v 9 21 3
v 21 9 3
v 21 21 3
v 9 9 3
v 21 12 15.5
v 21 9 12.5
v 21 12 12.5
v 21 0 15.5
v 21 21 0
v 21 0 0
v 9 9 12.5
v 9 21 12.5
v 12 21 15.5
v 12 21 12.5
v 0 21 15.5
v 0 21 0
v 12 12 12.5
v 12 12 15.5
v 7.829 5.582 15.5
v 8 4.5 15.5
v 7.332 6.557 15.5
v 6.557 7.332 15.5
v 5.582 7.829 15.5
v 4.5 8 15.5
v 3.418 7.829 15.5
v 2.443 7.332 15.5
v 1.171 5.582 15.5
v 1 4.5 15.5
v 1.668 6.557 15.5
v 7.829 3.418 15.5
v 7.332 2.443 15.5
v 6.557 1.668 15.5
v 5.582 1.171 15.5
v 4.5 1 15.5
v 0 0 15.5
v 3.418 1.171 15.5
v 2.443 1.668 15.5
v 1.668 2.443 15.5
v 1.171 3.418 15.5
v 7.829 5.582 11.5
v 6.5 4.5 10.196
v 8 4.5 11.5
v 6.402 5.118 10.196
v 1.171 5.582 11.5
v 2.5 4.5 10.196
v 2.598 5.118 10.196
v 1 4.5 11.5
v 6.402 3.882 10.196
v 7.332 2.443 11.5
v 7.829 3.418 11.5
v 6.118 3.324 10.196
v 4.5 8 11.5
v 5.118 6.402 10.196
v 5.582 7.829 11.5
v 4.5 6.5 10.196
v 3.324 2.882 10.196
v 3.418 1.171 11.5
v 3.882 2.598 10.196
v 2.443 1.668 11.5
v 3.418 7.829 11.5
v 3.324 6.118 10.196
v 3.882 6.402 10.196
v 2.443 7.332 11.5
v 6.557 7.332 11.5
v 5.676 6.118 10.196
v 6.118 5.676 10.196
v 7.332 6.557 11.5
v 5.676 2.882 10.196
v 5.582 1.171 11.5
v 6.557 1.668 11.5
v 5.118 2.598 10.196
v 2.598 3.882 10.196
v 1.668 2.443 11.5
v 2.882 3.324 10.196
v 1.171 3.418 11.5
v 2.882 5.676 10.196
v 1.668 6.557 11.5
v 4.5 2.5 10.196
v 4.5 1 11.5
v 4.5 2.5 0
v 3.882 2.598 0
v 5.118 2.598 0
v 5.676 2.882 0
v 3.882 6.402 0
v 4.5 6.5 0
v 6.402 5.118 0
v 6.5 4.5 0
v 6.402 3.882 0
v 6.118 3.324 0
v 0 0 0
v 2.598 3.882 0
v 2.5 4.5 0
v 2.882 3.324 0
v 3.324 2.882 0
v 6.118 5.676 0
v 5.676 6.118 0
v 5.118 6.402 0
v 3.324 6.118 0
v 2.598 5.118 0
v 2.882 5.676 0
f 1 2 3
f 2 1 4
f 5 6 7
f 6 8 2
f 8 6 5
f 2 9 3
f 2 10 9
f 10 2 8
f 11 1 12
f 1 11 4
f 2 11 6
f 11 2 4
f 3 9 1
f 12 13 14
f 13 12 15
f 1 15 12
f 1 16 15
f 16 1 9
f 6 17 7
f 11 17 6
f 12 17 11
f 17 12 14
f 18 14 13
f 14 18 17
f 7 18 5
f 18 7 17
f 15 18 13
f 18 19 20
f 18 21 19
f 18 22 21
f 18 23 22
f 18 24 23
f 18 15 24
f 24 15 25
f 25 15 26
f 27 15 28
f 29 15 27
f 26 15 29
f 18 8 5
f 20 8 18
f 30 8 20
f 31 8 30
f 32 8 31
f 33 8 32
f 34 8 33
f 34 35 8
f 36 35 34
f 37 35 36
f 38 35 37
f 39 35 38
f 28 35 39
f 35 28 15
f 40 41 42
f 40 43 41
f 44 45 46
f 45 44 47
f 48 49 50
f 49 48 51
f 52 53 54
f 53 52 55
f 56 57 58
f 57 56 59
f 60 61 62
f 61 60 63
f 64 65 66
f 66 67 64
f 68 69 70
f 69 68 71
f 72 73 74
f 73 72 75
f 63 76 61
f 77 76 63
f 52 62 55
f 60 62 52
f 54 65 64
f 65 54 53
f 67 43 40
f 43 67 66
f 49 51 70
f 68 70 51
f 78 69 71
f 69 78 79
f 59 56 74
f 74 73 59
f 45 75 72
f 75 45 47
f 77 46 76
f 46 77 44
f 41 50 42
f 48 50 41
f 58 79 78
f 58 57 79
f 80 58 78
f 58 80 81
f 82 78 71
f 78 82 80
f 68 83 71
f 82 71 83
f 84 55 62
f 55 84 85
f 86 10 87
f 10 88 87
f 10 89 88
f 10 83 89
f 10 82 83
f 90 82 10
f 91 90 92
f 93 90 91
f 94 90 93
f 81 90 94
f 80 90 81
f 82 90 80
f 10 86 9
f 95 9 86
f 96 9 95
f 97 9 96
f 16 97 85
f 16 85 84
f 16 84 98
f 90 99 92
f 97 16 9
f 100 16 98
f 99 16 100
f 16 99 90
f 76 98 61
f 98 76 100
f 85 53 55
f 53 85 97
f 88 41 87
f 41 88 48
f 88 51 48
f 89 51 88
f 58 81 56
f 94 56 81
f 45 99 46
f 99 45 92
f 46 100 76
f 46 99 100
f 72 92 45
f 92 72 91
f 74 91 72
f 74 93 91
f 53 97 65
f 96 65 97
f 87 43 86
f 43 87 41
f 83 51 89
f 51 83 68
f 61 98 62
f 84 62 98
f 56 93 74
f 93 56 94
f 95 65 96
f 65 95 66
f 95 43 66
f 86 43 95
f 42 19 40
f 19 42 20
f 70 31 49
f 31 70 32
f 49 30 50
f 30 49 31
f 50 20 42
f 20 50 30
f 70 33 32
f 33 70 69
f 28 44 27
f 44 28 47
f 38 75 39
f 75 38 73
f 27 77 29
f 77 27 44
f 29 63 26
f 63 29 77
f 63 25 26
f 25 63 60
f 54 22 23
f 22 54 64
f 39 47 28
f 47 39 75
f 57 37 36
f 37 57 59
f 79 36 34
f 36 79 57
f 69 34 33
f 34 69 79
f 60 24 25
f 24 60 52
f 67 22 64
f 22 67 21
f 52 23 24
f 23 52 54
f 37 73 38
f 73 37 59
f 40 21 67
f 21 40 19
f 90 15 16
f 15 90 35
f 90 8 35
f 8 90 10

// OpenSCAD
// file: ../lib/utils.scad
module cone(r, angle, invert=false) {
    h = tan(angle / 2) * r;
    translate([0, 0, -h]) {
        if (invert) {
                cylinder(r1=r,r2=0,h=h, $fn=20); 
        } else {
            cylinder(r1=0,r2=r,h=h, $fn=20); 
        }
    }
}

module roundrect(vect, r, $fn=20) {
    sq = len(vect) > 1 ? [for (i = [0:1:len(vect)-1]) vect[i] - r * 2] : vect - r * 2;
    minkowski() {
        square(sq);
        translate([r, r])
            circle(r=r);
    }
}
// main file
// Corner Bracket
// by Nathan Wittstock <nate@fardog.io>

// preview[view: south east, tilt: top diagonal]

use <../lib/utils.scad>;

/* [Object] */
object_depth_mm = 9.5;
object_front_overlap_mm = 3;
object_rear_overlap_mm = 12;

/* [Screw] */
screw_d_mm = 4;
screw_inset_head = true;
screw_additional_inset = 4;
screw_head_angle = 82;
screw_head_mm = 7;

/* [Bracket] */
thickness_mm = 3;
screw_offset_r_mm = 1;

/* [Hidden] */
total_depth = object_depth_mm + thickness_mm * 2;
total_side = screw_head_mm + screw_offset_r_mm * 2 + object_rear_overlap_mm;
object_offset = total_side - object_rear_overlap_mm;
front_offset = object_offset + object_front_overlap_mm;
front_size = total_side - front_offset;
screw_center = screw_head_mm / 2 + screw_offset_r_mm;
screw_top = total_depth - screw_additional_inset;

echo(total_depth);

difference() {
    // body
    linear_extrude(total_depth)
        square([total_side, total_side]);
    // object cutout
    translate([object_offset, object_offset, thickness_mm])
        union() {
            // main cutout
            linear_extrude(object_depth_mm)
                square([object_rear_overlap_mm, object_rear_overlap_mm]);
            // front cutout
            translate([object_front_overlap_mm, object_front_overlap_mm, object_depth_mm])
                linear_extrude(thickness_mm)
                    square(object_rear_overlap_mm - object_front_overlap_mm);
        }
    // screw holes
    translate([screw_center, screw_center, 0])
    union() {
        if (screw_inset_head) {
            translate([0, 0, screw_top])
                cone(screw_head_mm/2, screw_head_angle, false);
        }
        linear_extrude(total_depth)
            circle(d=screw_d_mm, $fn=20);
        if (screw_additional_inset > 0) {
            translate([0, 0, screw_top])
                linear_extrude(total_depth - screw_top)
                    circle(d=screw_head_mm, $fn=20);
        }
    }
}
